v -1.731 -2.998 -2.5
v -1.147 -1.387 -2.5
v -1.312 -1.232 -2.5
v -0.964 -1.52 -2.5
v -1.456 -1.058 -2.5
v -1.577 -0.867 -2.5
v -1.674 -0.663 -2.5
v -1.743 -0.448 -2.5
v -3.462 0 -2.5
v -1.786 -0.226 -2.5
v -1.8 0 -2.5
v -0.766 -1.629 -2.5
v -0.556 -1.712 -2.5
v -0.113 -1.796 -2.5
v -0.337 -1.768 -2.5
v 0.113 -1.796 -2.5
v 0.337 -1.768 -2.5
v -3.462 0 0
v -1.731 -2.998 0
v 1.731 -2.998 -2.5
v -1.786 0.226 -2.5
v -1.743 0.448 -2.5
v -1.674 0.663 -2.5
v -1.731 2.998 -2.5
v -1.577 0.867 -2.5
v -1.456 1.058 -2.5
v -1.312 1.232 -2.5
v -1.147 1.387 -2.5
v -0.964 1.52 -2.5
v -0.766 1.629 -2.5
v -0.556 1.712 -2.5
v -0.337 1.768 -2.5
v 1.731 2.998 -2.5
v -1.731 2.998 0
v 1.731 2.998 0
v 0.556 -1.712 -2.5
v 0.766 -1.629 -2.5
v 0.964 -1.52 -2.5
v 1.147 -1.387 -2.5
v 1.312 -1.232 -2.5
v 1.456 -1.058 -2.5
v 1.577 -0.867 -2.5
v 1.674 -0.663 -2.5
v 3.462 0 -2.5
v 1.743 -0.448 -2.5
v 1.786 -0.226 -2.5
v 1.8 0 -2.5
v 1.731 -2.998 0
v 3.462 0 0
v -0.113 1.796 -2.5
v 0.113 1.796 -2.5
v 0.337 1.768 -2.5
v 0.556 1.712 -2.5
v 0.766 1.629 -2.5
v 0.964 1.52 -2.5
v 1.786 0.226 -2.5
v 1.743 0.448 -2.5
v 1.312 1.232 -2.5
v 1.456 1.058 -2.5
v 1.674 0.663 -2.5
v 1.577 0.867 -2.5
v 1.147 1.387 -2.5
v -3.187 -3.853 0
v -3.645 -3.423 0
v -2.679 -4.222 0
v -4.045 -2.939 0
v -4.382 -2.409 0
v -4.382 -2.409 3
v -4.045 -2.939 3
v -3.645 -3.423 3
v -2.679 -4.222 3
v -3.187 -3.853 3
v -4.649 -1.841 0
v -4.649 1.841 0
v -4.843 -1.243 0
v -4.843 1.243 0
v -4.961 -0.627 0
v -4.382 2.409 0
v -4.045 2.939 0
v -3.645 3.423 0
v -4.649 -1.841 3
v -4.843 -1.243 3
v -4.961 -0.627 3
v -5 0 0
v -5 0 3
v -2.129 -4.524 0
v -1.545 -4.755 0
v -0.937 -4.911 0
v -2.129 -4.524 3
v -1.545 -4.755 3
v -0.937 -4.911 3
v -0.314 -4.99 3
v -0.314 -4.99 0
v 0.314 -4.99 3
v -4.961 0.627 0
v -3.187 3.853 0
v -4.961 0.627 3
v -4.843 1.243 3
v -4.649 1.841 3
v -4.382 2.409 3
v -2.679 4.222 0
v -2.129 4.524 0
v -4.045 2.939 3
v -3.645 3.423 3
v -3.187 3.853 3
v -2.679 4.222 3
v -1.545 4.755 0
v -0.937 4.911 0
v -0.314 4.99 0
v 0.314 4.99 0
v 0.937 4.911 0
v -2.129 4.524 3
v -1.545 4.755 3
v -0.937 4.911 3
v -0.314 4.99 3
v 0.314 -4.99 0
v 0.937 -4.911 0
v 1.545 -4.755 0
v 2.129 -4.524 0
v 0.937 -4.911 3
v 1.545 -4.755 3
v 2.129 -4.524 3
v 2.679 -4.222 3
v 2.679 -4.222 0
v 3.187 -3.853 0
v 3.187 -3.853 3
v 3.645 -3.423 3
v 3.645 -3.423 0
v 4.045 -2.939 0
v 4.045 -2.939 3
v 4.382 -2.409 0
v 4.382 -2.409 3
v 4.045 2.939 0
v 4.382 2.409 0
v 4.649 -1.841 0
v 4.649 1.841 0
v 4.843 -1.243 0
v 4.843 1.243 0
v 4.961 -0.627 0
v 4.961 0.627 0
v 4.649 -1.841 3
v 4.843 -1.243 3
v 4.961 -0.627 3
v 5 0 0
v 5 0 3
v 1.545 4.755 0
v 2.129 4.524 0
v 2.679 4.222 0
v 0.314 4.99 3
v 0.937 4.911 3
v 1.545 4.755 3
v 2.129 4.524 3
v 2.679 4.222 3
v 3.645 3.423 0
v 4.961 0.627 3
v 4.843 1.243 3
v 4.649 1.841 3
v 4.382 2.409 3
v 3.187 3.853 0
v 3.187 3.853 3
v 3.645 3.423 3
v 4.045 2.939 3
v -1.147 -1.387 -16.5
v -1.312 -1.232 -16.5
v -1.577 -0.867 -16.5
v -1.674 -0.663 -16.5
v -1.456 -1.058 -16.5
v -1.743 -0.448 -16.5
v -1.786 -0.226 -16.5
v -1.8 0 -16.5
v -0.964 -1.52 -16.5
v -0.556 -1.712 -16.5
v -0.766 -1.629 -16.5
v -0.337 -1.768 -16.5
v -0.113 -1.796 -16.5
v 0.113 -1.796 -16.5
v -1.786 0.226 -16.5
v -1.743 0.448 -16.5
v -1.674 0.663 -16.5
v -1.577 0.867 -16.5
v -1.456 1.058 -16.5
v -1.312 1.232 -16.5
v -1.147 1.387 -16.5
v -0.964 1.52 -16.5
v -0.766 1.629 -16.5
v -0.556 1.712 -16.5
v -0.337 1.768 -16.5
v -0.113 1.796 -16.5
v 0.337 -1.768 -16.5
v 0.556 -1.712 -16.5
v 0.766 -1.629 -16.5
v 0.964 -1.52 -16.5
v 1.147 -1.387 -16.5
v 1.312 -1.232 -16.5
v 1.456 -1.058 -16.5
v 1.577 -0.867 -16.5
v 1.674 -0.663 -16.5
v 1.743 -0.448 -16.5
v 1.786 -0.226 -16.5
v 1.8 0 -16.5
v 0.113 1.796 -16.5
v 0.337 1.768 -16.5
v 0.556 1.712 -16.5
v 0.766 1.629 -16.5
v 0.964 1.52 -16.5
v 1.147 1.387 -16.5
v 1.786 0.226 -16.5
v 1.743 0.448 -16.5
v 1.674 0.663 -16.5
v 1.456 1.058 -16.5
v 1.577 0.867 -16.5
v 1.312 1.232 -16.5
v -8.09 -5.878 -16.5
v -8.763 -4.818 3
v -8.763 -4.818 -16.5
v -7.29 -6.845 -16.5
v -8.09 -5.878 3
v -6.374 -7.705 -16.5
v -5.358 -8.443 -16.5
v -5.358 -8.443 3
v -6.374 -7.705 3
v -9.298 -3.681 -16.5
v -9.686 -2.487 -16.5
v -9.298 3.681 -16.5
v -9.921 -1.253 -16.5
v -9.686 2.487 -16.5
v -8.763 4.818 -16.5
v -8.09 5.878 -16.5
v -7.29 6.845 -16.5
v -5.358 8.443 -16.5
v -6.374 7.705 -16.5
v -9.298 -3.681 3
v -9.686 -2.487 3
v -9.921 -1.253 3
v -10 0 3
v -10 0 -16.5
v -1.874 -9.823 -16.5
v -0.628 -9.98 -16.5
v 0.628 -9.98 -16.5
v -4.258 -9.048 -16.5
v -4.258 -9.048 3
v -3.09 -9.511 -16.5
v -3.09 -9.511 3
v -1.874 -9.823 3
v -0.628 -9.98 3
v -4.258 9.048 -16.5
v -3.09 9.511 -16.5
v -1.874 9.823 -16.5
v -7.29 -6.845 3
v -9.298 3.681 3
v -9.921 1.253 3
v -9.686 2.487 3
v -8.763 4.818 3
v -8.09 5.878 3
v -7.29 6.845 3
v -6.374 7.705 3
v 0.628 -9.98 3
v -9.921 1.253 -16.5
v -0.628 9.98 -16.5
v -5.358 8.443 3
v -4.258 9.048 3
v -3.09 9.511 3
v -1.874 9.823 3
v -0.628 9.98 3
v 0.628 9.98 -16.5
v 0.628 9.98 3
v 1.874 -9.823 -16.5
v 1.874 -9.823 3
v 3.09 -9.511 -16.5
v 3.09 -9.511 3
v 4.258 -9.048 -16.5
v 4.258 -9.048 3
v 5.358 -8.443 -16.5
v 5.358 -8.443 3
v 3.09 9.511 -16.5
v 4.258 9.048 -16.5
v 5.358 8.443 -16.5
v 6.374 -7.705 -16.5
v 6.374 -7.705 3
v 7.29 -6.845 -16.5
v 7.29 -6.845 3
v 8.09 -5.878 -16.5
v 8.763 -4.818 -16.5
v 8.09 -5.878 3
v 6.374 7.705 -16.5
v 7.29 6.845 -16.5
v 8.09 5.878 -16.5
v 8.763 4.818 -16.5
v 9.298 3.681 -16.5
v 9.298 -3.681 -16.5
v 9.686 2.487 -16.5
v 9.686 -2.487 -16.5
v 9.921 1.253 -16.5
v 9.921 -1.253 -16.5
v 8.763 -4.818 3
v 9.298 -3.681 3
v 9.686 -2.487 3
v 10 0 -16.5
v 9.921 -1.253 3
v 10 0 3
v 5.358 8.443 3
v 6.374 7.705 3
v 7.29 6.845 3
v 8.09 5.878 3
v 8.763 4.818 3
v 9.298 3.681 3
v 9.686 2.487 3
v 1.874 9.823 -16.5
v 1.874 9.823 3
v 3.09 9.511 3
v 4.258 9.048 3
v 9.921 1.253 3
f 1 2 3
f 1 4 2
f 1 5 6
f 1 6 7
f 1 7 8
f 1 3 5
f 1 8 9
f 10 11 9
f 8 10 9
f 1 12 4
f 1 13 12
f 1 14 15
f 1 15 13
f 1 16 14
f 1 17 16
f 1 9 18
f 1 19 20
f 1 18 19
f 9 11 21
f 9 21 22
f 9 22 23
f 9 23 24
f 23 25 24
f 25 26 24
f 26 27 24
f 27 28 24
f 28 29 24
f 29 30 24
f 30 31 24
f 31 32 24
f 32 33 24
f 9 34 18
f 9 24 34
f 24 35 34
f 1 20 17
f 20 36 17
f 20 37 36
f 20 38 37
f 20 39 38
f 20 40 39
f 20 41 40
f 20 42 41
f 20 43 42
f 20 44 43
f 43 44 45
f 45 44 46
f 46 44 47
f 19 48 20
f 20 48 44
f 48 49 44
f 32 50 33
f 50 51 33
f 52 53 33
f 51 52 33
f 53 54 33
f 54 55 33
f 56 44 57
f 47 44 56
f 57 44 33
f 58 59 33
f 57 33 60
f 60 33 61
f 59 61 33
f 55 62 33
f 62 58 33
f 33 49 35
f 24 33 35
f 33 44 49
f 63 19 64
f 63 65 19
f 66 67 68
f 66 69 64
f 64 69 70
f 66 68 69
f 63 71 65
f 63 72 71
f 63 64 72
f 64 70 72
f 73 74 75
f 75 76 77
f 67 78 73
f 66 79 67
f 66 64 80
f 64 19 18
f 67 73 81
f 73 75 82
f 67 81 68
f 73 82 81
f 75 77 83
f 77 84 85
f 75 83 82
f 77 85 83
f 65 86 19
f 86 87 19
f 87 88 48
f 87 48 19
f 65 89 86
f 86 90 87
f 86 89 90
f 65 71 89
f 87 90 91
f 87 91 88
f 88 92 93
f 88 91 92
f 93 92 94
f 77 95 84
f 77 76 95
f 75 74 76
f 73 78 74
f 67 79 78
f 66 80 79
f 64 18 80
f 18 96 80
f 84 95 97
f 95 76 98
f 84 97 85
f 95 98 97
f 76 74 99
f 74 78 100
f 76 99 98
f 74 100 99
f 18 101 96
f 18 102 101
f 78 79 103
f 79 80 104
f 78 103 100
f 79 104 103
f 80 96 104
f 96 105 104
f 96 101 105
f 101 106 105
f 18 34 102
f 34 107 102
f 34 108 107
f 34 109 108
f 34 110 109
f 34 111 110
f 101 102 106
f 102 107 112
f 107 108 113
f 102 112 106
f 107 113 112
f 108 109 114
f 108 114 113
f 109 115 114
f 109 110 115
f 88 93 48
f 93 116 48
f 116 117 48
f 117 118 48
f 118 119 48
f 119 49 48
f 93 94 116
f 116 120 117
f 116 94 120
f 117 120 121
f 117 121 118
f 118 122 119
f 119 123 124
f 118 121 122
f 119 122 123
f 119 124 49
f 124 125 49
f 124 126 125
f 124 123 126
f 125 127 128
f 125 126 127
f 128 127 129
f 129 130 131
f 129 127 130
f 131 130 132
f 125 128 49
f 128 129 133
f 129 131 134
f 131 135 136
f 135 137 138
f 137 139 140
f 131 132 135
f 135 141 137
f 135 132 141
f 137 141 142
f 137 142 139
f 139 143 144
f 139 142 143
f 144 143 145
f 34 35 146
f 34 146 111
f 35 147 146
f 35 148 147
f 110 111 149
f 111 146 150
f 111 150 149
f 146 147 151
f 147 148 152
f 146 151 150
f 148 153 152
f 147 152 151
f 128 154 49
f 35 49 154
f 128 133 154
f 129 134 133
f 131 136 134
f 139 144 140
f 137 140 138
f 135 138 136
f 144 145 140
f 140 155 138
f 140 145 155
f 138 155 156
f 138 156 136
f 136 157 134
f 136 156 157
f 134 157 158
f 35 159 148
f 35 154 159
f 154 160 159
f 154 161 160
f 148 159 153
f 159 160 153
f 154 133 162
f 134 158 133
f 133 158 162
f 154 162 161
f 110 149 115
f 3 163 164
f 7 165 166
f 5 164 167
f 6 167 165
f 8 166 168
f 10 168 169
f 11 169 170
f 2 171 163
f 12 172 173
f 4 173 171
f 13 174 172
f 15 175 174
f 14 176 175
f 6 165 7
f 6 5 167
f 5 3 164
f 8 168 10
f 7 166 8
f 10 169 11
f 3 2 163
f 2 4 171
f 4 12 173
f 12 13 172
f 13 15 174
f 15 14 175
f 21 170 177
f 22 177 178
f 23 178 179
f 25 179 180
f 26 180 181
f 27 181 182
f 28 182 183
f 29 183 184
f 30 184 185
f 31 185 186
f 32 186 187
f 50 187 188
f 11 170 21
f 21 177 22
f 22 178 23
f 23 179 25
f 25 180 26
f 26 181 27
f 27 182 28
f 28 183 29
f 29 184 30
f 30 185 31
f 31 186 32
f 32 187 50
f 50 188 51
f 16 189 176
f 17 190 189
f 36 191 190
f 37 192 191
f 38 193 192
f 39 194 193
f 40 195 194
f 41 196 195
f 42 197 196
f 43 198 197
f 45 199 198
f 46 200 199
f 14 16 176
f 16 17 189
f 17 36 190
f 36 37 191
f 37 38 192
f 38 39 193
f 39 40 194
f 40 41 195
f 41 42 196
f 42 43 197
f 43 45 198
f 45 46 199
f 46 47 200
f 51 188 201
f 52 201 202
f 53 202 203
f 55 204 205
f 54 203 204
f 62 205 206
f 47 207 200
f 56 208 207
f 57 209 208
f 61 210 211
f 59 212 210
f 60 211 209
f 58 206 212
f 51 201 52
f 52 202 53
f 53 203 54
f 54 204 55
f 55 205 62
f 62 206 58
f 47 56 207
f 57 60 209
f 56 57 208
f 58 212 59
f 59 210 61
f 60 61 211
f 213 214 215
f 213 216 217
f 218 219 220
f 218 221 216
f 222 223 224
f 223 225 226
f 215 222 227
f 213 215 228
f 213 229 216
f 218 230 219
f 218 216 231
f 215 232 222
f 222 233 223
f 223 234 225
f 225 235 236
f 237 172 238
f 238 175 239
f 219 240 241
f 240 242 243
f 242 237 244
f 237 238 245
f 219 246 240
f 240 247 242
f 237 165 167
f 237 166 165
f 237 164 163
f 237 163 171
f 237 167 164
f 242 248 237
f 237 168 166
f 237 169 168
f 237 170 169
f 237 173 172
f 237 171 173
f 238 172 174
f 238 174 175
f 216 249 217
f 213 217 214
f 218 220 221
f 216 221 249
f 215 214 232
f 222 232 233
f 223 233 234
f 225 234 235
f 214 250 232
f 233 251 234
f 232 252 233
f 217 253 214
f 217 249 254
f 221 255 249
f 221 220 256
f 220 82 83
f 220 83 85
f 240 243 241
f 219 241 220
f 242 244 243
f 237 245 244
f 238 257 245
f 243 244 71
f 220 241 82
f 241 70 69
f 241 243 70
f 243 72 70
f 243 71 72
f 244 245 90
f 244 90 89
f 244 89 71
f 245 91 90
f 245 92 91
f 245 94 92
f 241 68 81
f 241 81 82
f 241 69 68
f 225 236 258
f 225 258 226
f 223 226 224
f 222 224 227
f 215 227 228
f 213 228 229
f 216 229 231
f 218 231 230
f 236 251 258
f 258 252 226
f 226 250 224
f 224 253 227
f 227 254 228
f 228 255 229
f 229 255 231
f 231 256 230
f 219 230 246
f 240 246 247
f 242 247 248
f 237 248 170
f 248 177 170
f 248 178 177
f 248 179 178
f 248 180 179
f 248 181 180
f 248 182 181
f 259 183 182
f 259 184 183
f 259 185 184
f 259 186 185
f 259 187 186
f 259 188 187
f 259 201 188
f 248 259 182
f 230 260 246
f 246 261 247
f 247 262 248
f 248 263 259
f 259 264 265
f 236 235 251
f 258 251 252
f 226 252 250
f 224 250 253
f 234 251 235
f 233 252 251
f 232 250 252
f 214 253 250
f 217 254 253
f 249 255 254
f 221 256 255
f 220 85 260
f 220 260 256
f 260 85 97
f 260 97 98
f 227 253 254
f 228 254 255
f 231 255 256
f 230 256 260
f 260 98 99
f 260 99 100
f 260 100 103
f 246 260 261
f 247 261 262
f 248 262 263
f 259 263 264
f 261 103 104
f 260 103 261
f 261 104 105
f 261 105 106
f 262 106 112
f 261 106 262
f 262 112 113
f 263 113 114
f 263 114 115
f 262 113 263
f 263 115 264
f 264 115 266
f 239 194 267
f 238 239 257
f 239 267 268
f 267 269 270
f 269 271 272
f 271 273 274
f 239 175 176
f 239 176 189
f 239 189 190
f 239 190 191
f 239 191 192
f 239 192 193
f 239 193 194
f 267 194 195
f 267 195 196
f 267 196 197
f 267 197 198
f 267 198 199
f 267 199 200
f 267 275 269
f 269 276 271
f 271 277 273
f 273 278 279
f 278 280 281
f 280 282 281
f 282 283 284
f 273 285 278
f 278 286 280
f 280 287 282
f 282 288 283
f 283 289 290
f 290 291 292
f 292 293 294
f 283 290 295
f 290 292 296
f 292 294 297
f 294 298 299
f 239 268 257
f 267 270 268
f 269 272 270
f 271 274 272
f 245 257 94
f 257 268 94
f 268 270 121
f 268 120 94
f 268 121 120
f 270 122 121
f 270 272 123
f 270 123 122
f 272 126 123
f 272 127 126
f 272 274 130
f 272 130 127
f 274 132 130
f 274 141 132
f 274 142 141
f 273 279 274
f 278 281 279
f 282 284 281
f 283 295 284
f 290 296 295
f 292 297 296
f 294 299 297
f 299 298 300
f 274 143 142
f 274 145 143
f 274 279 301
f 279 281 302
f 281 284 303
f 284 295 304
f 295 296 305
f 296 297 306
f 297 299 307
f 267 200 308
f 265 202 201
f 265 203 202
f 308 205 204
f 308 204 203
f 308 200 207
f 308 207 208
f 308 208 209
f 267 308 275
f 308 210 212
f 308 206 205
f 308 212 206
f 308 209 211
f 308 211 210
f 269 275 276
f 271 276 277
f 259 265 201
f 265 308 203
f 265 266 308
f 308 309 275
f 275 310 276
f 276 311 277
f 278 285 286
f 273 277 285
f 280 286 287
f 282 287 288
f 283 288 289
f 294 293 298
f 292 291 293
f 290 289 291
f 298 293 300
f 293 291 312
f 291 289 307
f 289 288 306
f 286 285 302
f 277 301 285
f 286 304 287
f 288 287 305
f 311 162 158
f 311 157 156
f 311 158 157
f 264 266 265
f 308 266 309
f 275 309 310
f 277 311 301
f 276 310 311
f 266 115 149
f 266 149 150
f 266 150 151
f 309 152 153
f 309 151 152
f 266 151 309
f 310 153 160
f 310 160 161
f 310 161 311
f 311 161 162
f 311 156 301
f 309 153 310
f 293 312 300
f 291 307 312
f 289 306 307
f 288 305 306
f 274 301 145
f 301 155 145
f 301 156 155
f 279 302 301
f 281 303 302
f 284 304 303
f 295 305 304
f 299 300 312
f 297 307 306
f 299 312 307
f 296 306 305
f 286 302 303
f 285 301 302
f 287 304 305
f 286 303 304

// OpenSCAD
$fn = 50;

difference() {
	union() {
		translate(v = [0, 0, -16.5]) {
			cylinder(h = 19.5, r = 10.0);
		}
	}
	union() {
		translate(v = [0, 0, 0]) {
			rotate(a = [0, 0, 0]) {
				difference() {
					union() {
						translate(v = [0, 0, -2.5]) {
							linear_extrude(height = 2.5) {
								polygon(points = [[3.4619999999999997, 0.0], [1.7310000000000003, 2.9981799479017264], [-1.7309999999999992, 2.9981799479017264], [-3.4619999999999997, 4.2397272186481365e-16], [-1.7310000000000014, -2.998179947901726], [1.7309999999999977, -2.9981799479017277]]);
							}
						}
					}
					union();
				}
			}
		}
		#cylinder(h = 3, r = 5.0);
		#translate(v = [0, 0, -100.0]) {
			cylinder(h = 200, r = 1.8);
		}
	}
}
